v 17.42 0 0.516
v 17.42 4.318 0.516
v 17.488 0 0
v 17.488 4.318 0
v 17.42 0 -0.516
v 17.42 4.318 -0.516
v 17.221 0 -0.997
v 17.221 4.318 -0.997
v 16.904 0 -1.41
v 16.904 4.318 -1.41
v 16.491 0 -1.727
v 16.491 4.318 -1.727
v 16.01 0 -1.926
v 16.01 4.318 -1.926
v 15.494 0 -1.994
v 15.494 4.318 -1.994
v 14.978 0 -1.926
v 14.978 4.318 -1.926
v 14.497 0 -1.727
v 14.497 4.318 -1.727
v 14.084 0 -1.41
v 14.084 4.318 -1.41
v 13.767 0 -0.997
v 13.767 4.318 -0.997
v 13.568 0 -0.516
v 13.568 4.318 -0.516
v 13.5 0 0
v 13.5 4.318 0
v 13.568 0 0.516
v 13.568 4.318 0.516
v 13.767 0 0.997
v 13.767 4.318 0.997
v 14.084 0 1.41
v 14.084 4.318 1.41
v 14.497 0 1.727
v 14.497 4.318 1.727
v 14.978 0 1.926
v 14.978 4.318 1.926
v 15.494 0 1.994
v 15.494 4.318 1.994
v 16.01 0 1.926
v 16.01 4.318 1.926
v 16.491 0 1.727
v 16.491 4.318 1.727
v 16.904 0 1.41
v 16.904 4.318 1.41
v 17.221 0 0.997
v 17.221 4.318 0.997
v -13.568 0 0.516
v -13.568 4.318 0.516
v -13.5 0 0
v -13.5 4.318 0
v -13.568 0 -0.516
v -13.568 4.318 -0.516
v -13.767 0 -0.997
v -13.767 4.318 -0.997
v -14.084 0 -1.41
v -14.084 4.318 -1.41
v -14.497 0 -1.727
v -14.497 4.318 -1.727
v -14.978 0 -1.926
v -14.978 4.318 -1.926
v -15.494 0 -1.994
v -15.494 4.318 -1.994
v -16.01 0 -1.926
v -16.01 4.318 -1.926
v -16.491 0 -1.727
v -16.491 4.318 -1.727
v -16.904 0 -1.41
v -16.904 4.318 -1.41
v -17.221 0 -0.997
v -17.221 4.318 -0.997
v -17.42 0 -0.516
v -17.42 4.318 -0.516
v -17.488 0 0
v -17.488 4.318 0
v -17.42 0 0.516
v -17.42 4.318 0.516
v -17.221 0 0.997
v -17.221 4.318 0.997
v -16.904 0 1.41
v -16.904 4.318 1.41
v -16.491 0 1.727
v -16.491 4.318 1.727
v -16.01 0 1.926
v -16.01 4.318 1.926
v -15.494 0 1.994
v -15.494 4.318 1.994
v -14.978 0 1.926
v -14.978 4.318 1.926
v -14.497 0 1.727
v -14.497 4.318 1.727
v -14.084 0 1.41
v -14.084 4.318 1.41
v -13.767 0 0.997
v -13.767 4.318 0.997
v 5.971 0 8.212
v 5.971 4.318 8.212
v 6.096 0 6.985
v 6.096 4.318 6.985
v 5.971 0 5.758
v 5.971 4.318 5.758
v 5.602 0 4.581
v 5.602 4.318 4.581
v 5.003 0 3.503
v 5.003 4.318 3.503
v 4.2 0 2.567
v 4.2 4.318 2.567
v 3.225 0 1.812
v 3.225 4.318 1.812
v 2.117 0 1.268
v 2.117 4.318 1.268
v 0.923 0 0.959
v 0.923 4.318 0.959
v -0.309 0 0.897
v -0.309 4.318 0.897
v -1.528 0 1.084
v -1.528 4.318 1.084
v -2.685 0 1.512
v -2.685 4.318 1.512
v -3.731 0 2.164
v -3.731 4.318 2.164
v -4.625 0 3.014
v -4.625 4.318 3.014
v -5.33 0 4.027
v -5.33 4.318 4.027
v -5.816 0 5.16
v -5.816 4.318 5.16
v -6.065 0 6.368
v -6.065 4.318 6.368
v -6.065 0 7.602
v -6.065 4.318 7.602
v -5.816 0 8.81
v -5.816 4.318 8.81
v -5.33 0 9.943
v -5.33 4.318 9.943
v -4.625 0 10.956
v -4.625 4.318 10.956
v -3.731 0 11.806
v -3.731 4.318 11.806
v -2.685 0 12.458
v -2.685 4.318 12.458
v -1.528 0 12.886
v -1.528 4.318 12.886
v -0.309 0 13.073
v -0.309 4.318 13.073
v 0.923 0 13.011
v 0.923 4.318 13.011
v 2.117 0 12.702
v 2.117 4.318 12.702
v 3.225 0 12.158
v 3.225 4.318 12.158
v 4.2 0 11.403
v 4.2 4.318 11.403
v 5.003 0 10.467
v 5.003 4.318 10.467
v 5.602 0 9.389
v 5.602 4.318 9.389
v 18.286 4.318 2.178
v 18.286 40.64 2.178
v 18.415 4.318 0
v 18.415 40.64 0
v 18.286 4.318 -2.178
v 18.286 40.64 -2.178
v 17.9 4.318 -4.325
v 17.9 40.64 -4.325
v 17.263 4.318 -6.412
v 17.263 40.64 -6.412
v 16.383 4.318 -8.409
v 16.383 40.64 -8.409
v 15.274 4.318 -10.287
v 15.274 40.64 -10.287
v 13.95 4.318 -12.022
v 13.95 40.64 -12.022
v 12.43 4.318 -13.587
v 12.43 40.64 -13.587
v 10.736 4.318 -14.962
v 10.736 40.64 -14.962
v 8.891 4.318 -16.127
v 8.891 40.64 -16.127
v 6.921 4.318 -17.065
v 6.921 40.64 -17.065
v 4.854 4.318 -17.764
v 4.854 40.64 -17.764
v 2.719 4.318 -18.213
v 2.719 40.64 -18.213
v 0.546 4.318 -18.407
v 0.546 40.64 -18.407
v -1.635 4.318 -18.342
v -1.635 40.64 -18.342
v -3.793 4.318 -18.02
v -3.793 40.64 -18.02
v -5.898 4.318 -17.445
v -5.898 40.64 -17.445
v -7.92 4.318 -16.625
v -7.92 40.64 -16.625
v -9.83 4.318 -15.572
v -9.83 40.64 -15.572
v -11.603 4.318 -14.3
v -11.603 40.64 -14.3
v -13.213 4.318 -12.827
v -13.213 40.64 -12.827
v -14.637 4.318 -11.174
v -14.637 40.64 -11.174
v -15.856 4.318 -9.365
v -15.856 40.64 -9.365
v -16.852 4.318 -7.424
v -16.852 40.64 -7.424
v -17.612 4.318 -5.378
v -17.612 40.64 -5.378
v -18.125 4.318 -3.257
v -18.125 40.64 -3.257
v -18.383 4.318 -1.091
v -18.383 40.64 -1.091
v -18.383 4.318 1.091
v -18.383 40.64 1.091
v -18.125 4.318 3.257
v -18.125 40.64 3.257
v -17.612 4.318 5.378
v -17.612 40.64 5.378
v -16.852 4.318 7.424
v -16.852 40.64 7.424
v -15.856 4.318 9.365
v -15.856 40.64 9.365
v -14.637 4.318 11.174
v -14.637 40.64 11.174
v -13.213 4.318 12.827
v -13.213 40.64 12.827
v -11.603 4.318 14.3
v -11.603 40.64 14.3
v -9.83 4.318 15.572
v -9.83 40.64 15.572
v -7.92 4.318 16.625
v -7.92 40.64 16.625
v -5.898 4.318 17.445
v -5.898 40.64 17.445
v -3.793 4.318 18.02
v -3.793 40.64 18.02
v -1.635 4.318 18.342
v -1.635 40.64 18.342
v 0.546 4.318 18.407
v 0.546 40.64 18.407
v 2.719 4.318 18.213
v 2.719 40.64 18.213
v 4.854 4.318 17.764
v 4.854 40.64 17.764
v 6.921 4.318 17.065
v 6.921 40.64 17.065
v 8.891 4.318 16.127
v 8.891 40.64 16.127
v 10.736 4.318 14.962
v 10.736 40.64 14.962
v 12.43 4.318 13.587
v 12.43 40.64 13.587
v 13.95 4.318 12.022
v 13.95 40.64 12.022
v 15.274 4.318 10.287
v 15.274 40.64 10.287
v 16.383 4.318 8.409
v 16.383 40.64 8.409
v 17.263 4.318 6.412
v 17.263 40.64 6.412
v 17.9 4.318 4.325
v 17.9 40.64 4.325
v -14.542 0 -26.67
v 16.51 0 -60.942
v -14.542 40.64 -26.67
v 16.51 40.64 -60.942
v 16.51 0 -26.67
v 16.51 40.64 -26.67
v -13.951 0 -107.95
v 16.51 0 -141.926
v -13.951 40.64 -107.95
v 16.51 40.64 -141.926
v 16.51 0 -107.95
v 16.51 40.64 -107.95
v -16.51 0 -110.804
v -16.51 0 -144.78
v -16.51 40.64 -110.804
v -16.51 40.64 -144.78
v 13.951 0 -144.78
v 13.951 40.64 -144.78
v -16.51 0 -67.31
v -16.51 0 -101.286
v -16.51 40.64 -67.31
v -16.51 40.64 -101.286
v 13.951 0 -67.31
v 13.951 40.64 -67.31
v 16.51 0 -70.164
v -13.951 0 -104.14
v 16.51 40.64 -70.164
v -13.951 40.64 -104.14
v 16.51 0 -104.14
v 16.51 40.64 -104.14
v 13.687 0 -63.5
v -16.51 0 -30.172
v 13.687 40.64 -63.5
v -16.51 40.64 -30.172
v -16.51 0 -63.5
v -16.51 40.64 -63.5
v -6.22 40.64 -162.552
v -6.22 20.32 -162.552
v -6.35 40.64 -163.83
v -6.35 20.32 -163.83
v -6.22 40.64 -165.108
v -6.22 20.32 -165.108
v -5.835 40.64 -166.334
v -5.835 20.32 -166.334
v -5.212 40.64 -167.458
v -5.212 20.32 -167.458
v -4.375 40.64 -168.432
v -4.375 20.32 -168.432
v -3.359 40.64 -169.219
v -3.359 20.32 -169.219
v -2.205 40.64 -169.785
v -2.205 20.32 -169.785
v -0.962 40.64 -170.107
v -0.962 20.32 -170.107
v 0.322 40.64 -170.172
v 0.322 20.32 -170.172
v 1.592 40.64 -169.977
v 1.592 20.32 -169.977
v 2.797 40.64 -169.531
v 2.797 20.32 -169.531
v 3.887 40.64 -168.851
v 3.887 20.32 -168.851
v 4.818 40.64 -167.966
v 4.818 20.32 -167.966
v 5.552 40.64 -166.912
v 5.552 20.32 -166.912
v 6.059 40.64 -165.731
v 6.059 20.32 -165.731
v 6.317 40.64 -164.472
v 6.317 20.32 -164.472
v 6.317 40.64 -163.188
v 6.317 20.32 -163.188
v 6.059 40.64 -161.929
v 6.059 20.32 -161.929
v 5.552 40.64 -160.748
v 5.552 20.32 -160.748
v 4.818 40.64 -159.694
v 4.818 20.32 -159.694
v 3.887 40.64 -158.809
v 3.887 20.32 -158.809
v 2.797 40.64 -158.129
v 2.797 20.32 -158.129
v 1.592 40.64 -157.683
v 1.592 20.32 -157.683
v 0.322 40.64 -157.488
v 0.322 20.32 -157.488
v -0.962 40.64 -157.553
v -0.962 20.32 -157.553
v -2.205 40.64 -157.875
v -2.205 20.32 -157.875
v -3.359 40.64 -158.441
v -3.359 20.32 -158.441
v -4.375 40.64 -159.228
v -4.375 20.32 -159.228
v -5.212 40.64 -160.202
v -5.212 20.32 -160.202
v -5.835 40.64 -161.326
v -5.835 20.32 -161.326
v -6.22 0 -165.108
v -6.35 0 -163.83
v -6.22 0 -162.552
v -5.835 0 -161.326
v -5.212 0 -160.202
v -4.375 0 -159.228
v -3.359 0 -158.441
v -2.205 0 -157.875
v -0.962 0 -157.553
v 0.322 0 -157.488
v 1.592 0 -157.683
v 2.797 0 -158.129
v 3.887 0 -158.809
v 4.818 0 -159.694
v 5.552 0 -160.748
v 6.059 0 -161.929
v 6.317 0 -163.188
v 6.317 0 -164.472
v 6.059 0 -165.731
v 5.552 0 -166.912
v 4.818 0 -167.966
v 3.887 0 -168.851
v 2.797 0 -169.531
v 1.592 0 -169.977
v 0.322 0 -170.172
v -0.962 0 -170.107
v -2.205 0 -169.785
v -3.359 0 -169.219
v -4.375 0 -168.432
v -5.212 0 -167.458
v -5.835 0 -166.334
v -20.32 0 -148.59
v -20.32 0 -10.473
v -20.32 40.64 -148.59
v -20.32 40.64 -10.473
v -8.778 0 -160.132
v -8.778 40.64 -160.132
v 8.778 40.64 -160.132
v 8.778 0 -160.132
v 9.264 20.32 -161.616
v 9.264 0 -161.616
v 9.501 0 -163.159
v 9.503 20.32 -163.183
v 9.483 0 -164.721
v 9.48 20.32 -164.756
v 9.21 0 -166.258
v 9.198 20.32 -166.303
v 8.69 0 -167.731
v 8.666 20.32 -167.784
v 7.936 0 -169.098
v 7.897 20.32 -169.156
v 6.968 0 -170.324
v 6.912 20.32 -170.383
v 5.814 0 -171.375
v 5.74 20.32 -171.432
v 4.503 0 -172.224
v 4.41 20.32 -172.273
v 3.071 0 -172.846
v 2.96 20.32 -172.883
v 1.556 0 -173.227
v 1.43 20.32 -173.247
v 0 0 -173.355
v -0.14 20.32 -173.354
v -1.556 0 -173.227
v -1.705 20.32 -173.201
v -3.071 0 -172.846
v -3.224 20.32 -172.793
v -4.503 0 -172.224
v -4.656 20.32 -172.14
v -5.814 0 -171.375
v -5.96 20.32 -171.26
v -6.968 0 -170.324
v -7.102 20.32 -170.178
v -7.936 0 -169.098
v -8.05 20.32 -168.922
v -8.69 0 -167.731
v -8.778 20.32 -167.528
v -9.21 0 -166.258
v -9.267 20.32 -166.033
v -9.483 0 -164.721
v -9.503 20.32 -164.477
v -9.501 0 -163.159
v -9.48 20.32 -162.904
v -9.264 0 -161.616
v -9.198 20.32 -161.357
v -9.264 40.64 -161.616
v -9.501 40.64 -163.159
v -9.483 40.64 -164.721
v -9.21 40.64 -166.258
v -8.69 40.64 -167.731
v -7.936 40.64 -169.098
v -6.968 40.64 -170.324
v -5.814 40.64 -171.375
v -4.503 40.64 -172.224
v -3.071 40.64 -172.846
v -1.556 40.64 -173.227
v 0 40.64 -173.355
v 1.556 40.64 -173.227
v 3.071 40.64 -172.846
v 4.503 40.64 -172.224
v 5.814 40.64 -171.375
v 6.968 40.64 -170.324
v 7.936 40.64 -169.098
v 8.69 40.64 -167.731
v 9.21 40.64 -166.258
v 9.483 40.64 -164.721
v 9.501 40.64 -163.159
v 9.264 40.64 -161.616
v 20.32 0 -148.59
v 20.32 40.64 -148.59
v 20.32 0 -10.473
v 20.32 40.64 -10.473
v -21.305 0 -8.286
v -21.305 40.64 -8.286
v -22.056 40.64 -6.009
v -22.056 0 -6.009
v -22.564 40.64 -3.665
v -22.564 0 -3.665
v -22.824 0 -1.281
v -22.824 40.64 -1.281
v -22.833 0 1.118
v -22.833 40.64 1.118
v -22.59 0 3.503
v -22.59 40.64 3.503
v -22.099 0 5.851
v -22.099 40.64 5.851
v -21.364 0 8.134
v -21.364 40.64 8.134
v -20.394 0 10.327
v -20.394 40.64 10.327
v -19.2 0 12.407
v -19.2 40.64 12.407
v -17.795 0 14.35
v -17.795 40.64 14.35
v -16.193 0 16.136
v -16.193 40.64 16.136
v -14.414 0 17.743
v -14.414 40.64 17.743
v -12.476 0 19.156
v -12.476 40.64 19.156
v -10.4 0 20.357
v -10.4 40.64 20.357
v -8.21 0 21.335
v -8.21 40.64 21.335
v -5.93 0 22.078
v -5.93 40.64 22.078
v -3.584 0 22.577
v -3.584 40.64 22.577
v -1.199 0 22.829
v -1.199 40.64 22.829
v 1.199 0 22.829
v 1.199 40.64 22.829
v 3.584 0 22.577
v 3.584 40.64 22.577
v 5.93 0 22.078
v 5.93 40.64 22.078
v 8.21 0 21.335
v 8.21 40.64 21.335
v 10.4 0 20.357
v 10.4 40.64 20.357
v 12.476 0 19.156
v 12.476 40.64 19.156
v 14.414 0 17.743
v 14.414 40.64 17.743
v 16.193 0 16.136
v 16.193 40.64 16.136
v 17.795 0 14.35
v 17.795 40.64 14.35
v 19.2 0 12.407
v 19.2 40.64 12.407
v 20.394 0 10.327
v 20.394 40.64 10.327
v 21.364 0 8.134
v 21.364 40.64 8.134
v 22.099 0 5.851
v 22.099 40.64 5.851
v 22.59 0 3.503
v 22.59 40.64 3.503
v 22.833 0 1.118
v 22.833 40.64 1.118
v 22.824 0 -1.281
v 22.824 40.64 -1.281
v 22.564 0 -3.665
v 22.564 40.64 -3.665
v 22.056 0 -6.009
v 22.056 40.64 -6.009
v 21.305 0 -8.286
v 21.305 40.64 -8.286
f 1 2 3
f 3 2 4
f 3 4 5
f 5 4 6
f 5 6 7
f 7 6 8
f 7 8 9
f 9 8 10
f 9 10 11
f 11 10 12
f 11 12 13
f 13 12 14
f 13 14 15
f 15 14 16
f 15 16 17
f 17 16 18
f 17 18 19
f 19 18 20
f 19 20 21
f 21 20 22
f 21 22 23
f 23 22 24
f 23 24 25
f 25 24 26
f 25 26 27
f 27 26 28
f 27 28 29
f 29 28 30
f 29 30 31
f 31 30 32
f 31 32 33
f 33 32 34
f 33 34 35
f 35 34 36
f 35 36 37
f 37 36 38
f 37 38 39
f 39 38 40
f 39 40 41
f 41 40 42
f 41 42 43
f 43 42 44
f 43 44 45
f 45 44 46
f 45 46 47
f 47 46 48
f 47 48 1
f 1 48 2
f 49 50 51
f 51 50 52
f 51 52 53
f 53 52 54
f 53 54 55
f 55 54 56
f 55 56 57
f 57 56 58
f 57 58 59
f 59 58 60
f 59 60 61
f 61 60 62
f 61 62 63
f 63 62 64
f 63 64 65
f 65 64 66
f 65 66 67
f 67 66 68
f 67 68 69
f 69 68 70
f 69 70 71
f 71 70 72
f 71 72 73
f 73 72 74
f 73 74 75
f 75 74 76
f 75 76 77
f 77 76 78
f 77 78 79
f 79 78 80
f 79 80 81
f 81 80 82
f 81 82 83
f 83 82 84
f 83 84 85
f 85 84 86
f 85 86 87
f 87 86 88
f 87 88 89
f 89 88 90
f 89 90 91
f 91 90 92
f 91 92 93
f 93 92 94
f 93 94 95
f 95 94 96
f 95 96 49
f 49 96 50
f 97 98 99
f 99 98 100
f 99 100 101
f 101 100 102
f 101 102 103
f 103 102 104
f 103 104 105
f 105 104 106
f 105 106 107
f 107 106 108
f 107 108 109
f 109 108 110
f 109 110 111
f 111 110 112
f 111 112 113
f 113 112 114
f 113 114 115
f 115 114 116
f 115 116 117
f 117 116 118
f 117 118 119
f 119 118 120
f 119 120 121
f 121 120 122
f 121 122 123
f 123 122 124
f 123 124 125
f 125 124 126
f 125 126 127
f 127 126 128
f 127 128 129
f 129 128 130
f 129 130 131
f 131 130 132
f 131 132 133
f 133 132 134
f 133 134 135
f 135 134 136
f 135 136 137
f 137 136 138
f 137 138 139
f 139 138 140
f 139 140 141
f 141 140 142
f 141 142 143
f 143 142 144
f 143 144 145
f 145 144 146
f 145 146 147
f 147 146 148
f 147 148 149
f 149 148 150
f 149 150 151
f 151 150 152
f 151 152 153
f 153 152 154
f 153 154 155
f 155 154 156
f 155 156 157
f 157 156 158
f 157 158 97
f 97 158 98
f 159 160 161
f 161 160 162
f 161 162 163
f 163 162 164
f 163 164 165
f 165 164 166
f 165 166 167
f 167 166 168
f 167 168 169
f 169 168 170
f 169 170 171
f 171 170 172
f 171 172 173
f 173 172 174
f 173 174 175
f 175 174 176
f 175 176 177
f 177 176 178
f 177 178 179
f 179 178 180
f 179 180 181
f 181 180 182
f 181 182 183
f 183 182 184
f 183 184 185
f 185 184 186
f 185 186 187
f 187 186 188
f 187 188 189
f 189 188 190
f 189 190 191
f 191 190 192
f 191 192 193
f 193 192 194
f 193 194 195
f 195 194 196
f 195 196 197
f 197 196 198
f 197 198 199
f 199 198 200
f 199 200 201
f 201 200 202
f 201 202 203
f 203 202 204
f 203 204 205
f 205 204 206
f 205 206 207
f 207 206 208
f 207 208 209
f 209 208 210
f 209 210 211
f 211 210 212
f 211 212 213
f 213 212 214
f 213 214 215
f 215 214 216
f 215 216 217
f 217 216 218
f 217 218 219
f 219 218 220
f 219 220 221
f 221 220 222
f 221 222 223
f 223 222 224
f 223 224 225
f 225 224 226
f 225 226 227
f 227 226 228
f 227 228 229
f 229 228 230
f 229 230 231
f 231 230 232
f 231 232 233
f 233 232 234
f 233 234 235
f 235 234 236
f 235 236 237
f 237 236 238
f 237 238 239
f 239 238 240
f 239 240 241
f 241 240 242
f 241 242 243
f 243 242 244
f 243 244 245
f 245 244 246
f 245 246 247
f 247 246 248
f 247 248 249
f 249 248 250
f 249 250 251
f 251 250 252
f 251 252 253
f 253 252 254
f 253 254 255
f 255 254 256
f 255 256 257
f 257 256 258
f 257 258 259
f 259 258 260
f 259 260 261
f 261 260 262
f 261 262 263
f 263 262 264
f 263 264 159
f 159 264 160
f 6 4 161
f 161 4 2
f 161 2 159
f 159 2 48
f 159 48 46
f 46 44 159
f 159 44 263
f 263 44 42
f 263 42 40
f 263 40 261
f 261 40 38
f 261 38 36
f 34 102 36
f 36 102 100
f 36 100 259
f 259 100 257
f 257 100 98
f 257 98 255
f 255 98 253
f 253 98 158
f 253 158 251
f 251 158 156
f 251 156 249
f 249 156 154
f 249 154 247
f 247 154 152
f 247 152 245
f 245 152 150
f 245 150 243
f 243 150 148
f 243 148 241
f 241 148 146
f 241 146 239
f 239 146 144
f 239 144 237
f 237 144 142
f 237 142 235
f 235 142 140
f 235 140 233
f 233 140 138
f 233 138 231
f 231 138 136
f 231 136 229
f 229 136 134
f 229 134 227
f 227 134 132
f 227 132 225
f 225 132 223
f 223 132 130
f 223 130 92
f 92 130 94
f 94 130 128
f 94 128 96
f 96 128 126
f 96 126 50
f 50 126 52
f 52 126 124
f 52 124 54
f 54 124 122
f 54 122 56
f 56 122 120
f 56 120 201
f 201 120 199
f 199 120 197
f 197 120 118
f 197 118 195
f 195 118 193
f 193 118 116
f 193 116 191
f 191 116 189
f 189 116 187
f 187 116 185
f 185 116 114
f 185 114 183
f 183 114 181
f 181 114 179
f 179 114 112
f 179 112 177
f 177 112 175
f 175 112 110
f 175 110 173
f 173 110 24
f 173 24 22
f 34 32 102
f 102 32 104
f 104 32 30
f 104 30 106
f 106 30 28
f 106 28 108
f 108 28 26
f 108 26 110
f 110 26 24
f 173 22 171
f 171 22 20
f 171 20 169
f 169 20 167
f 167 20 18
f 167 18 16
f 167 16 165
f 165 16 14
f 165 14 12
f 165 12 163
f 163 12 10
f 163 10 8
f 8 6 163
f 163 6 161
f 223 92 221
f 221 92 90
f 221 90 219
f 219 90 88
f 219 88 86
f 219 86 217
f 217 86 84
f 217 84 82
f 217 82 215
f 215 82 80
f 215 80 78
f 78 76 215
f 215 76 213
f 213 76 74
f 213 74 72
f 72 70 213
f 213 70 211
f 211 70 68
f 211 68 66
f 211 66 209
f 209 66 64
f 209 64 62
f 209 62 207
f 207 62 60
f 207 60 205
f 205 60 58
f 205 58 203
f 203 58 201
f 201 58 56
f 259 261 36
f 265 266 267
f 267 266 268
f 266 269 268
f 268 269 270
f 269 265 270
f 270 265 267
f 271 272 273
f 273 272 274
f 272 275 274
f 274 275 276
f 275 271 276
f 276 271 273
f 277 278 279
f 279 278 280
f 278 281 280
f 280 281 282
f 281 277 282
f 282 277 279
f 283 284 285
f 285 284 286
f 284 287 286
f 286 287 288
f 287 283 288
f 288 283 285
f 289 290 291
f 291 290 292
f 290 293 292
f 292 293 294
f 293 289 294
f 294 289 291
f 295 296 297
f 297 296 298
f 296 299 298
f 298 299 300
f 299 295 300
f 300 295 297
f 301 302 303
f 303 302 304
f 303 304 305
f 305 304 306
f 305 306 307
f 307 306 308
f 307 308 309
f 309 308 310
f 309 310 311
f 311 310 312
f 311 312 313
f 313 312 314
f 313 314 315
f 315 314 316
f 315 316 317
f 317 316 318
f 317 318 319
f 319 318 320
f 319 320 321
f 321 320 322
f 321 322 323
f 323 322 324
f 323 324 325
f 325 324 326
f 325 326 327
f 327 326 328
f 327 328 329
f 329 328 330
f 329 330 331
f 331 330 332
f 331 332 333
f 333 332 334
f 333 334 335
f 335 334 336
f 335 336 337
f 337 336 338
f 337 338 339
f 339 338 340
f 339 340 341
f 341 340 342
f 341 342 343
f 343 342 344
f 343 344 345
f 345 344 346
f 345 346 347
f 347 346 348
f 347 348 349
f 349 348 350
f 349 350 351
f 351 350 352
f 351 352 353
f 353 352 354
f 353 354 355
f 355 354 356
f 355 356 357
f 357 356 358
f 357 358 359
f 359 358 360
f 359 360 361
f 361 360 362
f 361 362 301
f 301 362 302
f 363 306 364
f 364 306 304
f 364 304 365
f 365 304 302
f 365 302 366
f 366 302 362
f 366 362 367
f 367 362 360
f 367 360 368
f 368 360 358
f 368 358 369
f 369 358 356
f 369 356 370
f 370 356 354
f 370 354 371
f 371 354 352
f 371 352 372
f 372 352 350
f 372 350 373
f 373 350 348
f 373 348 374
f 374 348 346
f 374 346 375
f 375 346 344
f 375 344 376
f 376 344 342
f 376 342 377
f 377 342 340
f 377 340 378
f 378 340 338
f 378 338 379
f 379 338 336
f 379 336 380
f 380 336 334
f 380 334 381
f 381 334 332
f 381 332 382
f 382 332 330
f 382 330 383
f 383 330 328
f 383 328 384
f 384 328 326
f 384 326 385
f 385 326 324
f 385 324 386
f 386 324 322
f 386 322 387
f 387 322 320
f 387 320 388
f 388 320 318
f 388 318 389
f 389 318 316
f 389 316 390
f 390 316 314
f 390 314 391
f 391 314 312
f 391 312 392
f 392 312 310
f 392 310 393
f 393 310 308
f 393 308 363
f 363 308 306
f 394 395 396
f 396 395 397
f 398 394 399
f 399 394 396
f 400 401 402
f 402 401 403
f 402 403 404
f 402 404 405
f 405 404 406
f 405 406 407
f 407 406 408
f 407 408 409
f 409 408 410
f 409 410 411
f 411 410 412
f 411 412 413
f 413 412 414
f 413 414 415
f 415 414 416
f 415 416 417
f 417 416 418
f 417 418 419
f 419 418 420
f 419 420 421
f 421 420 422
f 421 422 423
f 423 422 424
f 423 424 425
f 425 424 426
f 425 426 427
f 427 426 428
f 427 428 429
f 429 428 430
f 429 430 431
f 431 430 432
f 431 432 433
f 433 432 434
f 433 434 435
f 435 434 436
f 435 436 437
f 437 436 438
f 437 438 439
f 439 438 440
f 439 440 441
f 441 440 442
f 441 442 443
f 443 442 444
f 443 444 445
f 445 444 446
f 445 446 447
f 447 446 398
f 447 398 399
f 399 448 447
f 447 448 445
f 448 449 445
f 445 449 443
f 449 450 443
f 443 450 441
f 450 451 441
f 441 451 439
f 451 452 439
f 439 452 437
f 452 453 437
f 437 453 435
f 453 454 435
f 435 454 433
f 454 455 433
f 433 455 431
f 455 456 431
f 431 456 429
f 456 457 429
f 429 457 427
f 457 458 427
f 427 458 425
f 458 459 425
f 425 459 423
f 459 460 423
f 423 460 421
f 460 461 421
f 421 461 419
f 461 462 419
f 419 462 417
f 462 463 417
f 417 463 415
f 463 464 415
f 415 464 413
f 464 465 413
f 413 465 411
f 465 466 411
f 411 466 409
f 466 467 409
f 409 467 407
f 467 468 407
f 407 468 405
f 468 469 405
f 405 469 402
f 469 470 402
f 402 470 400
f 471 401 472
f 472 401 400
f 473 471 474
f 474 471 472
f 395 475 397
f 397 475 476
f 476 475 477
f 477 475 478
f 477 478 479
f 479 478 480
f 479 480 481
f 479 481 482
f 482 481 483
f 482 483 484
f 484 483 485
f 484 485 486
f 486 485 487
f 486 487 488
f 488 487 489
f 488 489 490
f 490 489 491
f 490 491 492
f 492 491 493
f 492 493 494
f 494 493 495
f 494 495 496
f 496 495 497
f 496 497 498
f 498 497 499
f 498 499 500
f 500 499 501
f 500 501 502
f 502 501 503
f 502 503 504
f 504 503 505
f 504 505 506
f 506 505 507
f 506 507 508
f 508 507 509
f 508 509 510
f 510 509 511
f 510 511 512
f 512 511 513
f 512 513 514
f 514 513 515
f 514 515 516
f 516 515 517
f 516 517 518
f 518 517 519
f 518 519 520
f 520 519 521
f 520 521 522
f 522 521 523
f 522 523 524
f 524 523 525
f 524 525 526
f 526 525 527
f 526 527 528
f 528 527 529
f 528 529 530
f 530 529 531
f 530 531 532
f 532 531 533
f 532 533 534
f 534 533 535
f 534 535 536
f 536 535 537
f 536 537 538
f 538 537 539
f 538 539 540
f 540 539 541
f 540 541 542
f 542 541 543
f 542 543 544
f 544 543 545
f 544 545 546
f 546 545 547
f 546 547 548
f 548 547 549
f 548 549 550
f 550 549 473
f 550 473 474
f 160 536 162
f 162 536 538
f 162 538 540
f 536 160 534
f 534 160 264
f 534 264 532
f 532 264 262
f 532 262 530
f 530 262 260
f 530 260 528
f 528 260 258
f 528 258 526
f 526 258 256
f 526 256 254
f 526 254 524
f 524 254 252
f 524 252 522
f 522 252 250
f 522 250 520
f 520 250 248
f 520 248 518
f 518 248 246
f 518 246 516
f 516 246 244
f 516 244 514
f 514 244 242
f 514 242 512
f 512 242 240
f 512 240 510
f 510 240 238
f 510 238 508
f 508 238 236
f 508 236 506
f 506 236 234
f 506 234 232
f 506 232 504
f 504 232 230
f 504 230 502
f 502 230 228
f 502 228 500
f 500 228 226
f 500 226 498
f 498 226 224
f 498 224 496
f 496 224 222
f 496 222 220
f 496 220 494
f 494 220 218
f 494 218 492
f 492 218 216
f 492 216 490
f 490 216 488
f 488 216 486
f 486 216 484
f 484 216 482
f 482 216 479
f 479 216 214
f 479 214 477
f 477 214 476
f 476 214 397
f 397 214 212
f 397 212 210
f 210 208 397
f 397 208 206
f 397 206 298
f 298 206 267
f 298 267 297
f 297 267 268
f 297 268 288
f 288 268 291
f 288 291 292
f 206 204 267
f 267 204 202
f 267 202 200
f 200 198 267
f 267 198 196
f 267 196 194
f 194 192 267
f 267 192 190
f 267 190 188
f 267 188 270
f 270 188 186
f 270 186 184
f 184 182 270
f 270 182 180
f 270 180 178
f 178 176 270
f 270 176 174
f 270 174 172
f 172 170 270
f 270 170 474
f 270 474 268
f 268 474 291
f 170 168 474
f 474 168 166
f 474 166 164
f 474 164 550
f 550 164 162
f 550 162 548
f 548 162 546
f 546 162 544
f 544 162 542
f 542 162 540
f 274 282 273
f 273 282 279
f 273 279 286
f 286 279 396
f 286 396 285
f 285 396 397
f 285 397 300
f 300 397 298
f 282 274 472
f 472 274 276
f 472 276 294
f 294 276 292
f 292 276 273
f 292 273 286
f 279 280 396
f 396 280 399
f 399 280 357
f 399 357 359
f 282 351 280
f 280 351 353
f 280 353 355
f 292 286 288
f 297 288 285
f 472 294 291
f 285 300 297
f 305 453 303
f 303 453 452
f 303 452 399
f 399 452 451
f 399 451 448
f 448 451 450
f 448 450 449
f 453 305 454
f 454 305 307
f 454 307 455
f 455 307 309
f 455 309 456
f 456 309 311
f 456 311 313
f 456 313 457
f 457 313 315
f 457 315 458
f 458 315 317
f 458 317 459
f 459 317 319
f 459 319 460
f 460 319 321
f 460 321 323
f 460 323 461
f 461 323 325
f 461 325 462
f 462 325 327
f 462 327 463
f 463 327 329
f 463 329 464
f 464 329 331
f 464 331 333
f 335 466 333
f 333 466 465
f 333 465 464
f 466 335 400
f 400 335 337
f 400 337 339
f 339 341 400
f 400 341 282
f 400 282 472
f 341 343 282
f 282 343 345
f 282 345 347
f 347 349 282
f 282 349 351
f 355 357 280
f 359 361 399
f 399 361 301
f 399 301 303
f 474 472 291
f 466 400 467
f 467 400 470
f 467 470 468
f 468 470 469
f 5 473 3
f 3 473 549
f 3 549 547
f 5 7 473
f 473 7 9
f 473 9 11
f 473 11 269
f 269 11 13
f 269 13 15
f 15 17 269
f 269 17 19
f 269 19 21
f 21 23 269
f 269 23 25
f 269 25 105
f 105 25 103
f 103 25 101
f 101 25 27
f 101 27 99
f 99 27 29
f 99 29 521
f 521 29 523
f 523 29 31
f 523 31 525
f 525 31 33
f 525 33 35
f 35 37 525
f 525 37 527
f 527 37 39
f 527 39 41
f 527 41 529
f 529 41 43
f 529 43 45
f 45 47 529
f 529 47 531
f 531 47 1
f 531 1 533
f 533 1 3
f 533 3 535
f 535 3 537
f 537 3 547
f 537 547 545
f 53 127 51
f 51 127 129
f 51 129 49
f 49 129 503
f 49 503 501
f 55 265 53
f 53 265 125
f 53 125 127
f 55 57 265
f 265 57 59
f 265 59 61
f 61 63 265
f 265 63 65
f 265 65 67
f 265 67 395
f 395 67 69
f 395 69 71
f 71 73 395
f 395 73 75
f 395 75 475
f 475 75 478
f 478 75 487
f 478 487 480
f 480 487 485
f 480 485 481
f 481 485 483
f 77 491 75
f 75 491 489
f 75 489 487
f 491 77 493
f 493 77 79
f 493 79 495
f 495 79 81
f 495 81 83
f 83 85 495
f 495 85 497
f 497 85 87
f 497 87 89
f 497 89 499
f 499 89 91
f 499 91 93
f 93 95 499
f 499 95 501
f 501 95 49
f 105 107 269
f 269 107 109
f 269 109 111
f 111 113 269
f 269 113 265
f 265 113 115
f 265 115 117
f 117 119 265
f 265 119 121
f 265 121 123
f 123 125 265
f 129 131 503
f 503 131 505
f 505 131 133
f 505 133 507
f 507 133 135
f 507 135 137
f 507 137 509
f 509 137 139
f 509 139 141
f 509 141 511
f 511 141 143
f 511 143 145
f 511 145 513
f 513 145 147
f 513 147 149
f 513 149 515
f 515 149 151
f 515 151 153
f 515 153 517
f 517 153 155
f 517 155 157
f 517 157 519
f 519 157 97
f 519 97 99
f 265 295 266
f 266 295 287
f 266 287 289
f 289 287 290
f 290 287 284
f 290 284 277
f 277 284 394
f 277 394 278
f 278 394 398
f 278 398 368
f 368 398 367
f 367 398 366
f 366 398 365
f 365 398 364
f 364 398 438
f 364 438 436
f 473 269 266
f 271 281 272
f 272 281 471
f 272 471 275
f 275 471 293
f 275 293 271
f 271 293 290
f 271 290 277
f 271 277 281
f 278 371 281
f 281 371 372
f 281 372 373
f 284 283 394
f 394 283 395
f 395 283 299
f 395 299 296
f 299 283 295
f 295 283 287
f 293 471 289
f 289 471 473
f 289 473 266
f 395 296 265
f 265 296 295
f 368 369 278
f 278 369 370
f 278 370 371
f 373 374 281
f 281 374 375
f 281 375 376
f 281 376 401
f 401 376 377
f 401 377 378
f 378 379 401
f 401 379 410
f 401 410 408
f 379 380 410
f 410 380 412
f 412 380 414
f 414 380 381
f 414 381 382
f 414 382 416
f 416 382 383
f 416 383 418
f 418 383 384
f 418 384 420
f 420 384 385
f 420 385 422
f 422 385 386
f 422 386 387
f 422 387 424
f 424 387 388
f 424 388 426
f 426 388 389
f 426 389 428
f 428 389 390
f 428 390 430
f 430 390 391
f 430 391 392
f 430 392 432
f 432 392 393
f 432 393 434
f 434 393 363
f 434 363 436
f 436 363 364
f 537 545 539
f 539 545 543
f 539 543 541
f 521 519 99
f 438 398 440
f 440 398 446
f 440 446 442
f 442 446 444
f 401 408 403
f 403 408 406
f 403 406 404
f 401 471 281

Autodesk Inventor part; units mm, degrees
ref_plane "YZ Plane" through (0, 0, 0) normal (1, 0, 0) x (0, 1, 0)
ref_plane "XZ Plane" through (0, 0, 0) normal (0, 1, 0) x (-1, 0, 0)
ref_plane "XY Plane" through (0, 0, 0) normal (0, 0, 1) x (1, 0, 0)
sketch "Sketch1" plane through (0, 0, 0) normal (0, 1, 0) x (-1, 0, 0)
  circle A0 centre (0, 0) radius 22.86
  line L0 (14.5416, -26.67) -> (-16.51, -26.67)
  line L1 (-20.32, -15.24) -> (-20.32, -55.88)
  line L2 (-13.6865, -63.5) -> (16.51, -63.5)
  line L3 (20.32, -55.88) -> (20.32, -15.24)
  line L4 (16.51, -67.31) -> (-16.51, -67.31)
  line L5 (-20.32, -59.69) -> (-20.32, -100.33)
  line L6 (-16.51, -104.14) -> (13.9515, -104.14)
  line L7 (20.32, -100.33) -> (20.32, -59.69)
  line L8 (13.9515, -107.95) -> (-16.51, -107.95)
  line L9 (-20.32, -104.14) -> (-20.32, -144.78)
  line L10 (20.32, -144.78) -> (20.32, -104.14)
  line L11 (20.32, -15.24) -> (20.32, -10.4727)
  circle A1 centre (0, -163.83) radius 6.35
  line L12 (-20.32, -15.24) -> (-20.32, -10.4727)
  line L13 (20.32, -55.88) -> (20.32, -59.69)
  line L14 (20.32, -100.33) -> (20.32, -104.14)
  line L15 (-20.32, -55.88) -> (-20.32, -59.69)
  line L16 (-20.32, -100.33) -> (-20.32, -104.14)
  line L17 (20.32, -144.78) -> (20.32, -148.59)
  line L18 (-20.32, -144.78) -> (-20.32, -148.59)
  line L19 (20.32, -148.59) -> (8.7779, -160.1321)
  line L20 (-20.32, -148.59) -> (-8.7779, -160.1321)
  line L21 (16.51, -30.1719) -> (16.51, -63.5)
  line L22 (-16.51, -26.67) -> (-16.51, -60.9418)
  line L23 (16.51, -67.31) -> (16.51, -101.2863)
  line L24 (-16.51, -67.31) -> (-16.51, -104.14)
  line L25 (16.51, -110.8037) -> (16.51, -144.78)
  line L26 (-16.51, -141.9263) -> (-16.51, -107.95)
  arc A2 (-8.7779, -160.1321) -> (8.7779, -160.1321) centre (0, -163.83) ccw
  line L27 (14.5416, -26.67) -> (-16.51, -60.9418)
  line L28 (16.9388, -26.8614) -> (16.51, -27.3347)
  line L29 (17.3651, -29.2282) -> (-13.6865, -63.5)
  line L30 (-13.9515, -67.31) -> (16.51, -101.2863)
  line L31 (-16.51, -70.1637) -> (13.9515, -104.14)
  line L32 (13.9515, -107.95) -> (-16.51, -141.9263)
  line L33 (16.51, -110.8037) -> (-13.9515, -144.78)
  line L34 (-19.0685, -144.78) -> (-16.51, -144.78)
  line L35 (-13.9515, -144.78) -> (16.51, -144.78)
  dimension "d0" = 45.72
  dimension "d2" = 26.67
  dimension "d3" = 36.83
  dimension "d5" = 20.32
  dimension "d6" = 3.81
  dimension "d7" = 40.64
  dimension "d8" = 3.81
  dimension "d10" = 12.7
  dimension "d11" = 3.81
  dimension "d12" = 3.81
  dimension "d13" = 135
  dimension "d14" = 3.81
  dimension "d15" = 3.81
  dimension "d16" = 3.81
  dimension "d17" = 36.83
  dimension "d19" = 94.2927
  dimension "d20" = 62.8618
  dimension "d21" = 123.0295
  dimension "d22" = 94.2927
  dimension "d23" = 91.5986
  dimension "d24" = 62.8618
  dimension "d25" = 3.81
  dimension "d26" = 36.83
  dimension "d27" = 65.5559
  dimension "d28" = 60.1677
  dimension "d29" = 19.05
  dimension "d32" = 1.905
  dimension "d37" = 42.178
  dimension "d38" = 138.122
  dimension "d39" = 138.122
  dimension "d40" = 118.11
  dimension "d41" = 36.83
  dimension "d42" = 0
  dimension "d43" = 3.81
  dimension "d44" = 3.81
  dimension "d45" = 86.2593
  dimension "d46" = 55.3203
  dimension "d47" = 3.3812
  dimension "d48" = 11.5421
  dimension "d49" = 36.83
  dimension "d50" = 119.4374
  dimension "d51" = 119.4374
  dimension "d52" = 20.32
extrude "Extrusion1" add sketch "Sketch1" along normal blind 40.64
sketch "Sketch2" plane through (0, 40.64, 0) normal (0, 1, 0) x (1, 0, 0)
  circle A0 centre (0, 0) radius 18.415
  dimension "d55" = 36.83
extrude "Extrusion2" cut sketch "Sketch2" against normal blind 36.322
sketch "Sketch3" plane through (0, 4.318, 0) normal (0, 1, 0) x (1, 0, 0)
  circle A0 centre (0, -6.985) radius 6.096
  line L0 (0, 0) -> (0, -18.9723)
  arc A1 (-20.32, 10.4727) -> (20.32, 10.4727) centre (0, 0) ccw projected
  line L1 (-15.494, 0) -> (15.494, 0)
  circle A2 centre (-15.494, 0) radius 1.9939
  circle A3 centre (15.494, 0) radius 1.9939
  point P0 (0, -22.86)
  dimension "d58" = 6.985
  dimension "d59" = 12.192
  dimension "d61" = 3.9878
  dimension "d62" = 30.988
  dimension "d63" = 15.494
  dimension "d65" = 18.9722
extrude "Extrusion3" cut sketch "Sketch3" against normal blind 36.322
properties part number "leg 2.0"
